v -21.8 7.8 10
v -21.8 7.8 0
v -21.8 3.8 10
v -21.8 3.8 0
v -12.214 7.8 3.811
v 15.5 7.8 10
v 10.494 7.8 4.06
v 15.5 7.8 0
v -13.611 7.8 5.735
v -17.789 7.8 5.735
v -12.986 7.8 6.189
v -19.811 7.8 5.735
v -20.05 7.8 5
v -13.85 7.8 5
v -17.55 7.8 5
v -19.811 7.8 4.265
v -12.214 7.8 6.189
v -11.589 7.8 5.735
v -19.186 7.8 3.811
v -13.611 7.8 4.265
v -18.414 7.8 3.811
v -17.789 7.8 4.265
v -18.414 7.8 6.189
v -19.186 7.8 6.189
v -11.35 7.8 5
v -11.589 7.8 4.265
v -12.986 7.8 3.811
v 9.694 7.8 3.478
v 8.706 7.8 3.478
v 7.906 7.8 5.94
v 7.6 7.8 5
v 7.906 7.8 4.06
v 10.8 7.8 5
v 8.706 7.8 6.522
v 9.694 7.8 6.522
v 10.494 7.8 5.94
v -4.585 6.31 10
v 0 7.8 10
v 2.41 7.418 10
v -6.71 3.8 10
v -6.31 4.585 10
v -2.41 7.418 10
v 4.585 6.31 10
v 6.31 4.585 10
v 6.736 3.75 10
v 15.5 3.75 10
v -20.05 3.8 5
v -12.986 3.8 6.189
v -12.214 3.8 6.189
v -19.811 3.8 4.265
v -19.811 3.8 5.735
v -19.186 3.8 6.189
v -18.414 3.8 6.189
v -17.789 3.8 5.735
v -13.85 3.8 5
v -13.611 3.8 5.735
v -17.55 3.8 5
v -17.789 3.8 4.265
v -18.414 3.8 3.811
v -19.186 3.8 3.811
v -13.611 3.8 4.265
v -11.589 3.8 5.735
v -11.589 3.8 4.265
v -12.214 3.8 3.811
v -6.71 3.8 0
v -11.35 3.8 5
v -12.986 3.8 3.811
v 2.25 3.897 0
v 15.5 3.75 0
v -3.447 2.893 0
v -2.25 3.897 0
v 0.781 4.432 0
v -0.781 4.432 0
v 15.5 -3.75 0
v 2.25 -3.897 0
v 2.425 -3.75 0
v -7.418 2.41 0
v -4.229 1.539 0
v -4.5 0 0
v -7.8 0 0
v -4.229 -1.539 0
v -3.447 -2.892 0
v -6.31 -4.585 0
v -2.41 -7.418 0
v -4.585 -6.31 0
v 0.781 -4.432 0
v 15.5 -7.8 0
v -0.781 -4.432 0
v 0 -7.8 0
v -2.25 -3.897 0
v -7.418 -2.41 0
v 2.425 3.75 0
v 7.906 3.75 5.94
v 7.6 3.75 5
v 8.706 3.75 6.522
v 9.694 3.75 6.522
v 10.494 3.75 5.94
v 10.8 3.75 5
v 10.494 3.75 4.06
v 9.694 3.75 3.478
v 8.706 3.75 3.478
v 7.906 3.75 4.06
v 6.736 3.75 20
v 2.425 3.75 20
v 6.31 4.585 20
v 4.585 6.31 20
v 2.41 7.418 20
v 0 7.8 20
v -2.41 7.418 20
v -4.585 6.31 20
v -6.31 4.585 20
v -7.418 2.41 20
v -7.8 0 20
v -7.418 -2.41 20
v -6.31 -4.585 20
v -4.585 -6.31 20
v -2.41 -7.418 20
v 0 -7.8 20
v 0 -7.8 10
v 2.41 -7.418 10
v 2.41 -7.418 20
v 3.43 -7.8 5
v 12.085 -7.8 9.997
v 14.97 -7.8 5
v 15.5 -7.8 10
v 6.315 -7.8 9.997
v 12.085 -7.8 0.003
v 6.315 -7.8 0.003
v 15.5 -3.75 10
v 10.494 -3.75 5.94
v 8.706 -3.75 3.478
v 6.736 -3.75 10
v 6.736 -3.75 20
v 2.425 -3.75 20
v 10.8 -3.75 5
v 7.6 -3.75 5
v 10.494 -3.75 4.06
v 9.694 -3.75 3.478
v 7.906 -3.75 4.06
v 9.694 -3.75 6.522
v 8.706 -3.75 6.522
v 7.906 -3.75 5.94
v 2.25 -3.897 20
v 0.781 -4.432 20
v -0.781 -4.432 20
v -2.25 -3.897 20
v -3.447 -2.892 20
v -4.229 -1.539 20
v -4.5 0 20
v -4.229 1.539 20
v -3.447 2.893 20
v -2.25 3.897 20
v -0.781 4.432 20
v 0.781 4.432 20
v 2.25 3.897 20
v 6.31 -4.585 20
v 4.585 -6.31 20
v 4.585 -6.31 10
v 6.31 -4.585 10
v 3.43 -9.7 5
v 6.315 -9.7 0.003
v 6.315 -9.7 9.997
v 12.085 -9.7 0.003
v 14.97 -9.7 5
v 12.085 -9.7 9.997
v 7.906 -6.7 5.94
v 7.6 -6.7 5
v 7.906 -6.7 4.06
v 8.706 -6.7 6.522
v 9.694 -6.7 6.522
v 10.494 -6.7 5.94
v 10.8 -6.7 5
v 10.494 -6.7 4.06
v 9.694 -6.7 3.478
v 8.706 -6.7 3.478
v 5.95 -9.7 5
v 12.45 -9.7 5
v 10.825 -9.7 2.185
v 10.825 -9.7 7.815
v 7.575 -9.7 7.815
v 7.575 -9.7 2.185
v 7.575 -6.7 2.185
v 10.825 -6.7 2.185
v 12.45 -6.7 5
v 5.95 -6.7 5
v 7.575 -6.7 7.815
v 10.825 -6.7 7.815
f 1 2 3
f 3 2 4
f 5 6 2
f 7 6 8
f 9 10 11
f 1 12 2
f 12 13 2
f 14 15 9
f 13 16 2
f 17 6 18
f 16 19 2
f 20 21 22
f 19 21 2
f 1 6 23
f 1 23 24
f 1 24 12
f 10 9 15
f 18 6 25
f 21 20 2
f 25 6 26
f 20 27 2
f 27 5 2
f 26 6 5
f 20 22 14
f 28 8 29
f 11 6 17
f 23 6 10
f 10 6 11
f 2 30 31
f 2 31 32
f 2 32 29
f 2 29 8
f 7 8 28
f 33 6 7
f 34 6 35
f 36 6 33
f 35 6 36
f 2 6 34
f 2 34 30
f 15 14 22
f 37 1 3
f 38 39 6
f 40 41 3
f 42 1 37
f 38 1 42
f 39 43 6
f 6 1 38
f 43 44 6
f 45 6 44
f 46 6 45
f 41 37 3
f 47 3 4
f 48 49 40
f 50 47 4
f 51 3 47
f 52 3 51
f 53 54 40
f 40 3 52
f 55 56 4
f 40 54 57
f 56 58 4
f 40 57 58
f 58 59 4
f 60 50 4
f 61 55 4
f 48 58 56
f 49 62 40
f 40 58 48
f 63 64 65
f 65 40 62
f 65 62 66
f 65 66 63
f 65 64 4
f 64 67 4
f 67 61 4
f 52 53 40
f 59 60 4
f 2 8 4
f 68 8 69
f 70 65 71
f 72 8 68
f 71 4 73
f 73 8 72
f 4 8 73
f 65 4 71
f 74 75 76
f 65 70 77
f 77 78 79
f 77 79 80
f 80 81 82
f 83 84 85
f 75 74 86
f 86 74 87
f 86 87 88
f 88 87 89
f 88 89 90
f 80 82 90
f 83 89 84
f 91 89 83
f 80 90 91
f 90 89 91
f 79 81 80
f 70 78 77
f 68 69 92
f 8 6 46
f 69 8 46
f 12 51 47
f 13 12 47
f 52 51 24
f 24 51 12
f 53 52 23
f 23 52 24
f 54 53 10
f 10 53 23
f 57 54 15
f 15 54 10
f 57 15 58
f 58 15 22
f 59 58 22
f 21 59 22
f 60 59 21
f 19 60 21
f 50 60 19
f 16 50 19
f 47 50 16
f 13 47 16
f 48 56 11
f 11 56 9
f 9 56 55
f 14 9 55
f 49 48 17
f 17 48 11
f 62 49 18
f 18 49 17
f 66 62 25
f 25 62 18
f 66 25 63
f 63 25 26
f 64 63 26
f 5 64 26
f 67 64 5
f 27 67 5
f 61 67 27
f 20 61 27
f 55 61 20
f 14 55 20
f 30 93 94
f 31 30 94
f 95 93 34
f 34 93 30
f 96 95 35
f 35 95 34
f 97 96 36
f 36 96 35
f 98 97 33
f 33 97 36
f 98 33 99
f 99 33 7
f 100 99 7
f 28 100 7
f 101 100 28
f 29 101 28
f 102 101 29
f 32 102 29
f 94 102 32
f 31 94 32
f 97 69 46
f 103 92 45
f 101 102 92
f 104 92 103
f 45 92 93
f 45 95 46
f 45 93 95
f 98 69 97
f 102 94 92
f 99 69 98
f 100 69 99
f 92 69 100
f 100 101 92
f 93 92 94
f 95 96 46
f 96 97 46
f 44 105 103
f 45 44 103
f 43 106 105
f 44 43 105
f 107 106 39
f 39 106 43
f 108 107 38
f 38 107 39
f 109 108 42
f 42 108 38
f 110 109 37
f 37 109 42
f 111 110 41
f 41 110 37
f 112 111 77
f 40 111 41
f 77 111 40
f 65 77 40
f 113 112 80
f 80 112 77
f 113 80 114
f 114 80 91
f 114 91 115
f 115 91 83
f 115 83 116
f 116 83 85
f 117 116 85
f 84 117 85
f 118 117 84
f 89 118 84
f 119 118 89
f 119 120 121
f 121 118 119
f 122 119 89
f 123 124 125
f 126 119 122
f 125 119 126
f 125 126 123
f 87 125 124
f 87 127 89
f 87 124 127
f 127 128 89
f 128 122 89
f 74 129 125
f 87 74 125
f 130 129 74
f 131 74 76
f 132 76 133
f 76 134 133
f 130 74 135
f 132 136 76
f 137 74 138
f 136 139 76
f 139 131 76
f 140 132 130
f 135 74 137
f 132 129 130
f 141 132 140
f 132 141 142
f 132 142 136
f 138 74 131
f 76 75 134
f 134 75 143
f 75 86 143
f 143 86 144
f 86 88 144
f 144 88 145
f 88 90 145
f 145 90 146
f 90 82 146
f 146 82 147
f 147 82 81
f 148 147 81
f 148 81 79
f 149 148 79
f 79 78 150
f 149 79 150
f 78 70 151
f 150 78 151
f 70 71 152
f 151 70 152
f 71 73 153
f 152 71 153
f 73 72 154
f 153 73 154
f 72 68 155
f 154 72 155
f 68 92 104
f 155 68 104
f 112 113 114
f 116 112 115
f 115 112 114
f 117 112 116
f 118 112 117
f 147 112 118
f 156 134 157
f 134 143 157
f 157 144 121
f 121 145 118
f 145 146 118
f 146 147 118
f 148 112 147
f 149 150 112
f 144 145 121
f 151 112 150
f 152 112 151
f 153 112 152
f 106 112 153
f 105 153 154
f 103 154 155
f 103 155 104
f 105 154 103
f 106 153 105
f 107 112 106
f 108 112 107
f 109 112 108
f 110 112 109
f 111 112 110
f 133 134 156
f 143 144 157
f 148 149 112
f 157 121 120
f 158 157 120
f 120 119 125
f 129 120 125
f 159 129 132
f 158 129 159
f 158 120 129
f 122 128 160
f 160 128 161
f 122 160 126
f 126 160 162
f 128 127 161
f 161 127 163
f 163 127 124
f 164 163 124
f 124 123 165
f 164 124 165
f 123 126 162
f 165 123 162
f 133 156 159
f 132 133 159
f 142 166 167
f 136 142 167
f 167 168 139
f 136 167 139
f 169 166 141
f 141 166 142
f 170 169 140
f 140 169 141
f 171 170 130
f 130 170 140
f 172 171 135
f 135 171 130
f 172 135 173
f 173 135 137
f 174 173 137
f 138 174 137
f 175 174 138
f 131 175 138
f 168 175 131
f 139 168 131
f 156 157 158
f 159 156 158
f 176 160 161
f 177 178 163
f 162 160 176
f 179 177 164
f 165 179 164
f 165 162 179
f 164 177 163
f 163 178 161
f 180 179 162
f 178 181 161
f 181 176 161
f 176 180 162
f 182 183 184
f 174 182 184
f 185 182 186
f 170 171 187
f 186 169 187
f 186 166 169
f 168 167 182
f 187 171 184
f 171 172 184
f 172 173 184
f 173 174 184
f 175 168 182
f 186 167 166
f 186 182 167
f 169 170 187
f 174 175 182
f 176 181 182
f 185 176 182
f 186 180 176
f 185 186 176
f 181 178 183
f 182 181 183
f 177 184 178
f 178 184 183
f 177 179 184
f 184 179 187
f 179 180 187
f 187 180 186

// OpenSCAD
m8_diameter = 9;
m8_nut_diameter = 14.1;

m3_diameter = 3.2;
m3_nut_diameter = 5.3;
m3_nut_diameter_horizontal = 6.1;

outer_diameter = m8_diameter/2+3.3;
screw_hole_spacing = 20;
opening_size = m8_diameter-1.5; //openingsize

module endstop(){
difference(){
	union(){
		translate([outer_diameter,outer_diameter,-10]) cylinder(20,r=outer_diameter,$fn=20);
		translate([outer_diameter,0,0]) cube([15.5,outer_diameter*2,10]);
		translate([-14,0,0]) cube([37,4,10]);
		translate([17,17.5,5]) rotate([90,0,0]) cylinder(5,r=5.77,$fn=6);
	}
	translate([9,outer_diameter-opening_size/2,-10.1]) cube([18,opening_size,21]);
	translate([outer_diameter, outer_diameter,-10.1]) cylinder(21, r = m8_diameter/2,$fn=18);

	//Securing hole
	translate([17,17,5]) rotate([90,0,0]) cylinder(20,r=m3_diameter/2,$fn=10);
	translate([17,19.5,5]) rotate([90,0,0]) cylinder(5,r=m3_nut_diameter_horizontal/2+0.2,$fn=6);

	translate([-4.8,17,5]) rotate([90,0,0]) cylinder(20,r=2.5/2,$fn=10);
	translate([-11,17,5]) rotate([90,0,0]) cylinder(20,r=2.5/2,$fn=10);
}
}
rotate([180,0,0])
translate([-outer_diameter,-outer_diameter,-10])endstop();
